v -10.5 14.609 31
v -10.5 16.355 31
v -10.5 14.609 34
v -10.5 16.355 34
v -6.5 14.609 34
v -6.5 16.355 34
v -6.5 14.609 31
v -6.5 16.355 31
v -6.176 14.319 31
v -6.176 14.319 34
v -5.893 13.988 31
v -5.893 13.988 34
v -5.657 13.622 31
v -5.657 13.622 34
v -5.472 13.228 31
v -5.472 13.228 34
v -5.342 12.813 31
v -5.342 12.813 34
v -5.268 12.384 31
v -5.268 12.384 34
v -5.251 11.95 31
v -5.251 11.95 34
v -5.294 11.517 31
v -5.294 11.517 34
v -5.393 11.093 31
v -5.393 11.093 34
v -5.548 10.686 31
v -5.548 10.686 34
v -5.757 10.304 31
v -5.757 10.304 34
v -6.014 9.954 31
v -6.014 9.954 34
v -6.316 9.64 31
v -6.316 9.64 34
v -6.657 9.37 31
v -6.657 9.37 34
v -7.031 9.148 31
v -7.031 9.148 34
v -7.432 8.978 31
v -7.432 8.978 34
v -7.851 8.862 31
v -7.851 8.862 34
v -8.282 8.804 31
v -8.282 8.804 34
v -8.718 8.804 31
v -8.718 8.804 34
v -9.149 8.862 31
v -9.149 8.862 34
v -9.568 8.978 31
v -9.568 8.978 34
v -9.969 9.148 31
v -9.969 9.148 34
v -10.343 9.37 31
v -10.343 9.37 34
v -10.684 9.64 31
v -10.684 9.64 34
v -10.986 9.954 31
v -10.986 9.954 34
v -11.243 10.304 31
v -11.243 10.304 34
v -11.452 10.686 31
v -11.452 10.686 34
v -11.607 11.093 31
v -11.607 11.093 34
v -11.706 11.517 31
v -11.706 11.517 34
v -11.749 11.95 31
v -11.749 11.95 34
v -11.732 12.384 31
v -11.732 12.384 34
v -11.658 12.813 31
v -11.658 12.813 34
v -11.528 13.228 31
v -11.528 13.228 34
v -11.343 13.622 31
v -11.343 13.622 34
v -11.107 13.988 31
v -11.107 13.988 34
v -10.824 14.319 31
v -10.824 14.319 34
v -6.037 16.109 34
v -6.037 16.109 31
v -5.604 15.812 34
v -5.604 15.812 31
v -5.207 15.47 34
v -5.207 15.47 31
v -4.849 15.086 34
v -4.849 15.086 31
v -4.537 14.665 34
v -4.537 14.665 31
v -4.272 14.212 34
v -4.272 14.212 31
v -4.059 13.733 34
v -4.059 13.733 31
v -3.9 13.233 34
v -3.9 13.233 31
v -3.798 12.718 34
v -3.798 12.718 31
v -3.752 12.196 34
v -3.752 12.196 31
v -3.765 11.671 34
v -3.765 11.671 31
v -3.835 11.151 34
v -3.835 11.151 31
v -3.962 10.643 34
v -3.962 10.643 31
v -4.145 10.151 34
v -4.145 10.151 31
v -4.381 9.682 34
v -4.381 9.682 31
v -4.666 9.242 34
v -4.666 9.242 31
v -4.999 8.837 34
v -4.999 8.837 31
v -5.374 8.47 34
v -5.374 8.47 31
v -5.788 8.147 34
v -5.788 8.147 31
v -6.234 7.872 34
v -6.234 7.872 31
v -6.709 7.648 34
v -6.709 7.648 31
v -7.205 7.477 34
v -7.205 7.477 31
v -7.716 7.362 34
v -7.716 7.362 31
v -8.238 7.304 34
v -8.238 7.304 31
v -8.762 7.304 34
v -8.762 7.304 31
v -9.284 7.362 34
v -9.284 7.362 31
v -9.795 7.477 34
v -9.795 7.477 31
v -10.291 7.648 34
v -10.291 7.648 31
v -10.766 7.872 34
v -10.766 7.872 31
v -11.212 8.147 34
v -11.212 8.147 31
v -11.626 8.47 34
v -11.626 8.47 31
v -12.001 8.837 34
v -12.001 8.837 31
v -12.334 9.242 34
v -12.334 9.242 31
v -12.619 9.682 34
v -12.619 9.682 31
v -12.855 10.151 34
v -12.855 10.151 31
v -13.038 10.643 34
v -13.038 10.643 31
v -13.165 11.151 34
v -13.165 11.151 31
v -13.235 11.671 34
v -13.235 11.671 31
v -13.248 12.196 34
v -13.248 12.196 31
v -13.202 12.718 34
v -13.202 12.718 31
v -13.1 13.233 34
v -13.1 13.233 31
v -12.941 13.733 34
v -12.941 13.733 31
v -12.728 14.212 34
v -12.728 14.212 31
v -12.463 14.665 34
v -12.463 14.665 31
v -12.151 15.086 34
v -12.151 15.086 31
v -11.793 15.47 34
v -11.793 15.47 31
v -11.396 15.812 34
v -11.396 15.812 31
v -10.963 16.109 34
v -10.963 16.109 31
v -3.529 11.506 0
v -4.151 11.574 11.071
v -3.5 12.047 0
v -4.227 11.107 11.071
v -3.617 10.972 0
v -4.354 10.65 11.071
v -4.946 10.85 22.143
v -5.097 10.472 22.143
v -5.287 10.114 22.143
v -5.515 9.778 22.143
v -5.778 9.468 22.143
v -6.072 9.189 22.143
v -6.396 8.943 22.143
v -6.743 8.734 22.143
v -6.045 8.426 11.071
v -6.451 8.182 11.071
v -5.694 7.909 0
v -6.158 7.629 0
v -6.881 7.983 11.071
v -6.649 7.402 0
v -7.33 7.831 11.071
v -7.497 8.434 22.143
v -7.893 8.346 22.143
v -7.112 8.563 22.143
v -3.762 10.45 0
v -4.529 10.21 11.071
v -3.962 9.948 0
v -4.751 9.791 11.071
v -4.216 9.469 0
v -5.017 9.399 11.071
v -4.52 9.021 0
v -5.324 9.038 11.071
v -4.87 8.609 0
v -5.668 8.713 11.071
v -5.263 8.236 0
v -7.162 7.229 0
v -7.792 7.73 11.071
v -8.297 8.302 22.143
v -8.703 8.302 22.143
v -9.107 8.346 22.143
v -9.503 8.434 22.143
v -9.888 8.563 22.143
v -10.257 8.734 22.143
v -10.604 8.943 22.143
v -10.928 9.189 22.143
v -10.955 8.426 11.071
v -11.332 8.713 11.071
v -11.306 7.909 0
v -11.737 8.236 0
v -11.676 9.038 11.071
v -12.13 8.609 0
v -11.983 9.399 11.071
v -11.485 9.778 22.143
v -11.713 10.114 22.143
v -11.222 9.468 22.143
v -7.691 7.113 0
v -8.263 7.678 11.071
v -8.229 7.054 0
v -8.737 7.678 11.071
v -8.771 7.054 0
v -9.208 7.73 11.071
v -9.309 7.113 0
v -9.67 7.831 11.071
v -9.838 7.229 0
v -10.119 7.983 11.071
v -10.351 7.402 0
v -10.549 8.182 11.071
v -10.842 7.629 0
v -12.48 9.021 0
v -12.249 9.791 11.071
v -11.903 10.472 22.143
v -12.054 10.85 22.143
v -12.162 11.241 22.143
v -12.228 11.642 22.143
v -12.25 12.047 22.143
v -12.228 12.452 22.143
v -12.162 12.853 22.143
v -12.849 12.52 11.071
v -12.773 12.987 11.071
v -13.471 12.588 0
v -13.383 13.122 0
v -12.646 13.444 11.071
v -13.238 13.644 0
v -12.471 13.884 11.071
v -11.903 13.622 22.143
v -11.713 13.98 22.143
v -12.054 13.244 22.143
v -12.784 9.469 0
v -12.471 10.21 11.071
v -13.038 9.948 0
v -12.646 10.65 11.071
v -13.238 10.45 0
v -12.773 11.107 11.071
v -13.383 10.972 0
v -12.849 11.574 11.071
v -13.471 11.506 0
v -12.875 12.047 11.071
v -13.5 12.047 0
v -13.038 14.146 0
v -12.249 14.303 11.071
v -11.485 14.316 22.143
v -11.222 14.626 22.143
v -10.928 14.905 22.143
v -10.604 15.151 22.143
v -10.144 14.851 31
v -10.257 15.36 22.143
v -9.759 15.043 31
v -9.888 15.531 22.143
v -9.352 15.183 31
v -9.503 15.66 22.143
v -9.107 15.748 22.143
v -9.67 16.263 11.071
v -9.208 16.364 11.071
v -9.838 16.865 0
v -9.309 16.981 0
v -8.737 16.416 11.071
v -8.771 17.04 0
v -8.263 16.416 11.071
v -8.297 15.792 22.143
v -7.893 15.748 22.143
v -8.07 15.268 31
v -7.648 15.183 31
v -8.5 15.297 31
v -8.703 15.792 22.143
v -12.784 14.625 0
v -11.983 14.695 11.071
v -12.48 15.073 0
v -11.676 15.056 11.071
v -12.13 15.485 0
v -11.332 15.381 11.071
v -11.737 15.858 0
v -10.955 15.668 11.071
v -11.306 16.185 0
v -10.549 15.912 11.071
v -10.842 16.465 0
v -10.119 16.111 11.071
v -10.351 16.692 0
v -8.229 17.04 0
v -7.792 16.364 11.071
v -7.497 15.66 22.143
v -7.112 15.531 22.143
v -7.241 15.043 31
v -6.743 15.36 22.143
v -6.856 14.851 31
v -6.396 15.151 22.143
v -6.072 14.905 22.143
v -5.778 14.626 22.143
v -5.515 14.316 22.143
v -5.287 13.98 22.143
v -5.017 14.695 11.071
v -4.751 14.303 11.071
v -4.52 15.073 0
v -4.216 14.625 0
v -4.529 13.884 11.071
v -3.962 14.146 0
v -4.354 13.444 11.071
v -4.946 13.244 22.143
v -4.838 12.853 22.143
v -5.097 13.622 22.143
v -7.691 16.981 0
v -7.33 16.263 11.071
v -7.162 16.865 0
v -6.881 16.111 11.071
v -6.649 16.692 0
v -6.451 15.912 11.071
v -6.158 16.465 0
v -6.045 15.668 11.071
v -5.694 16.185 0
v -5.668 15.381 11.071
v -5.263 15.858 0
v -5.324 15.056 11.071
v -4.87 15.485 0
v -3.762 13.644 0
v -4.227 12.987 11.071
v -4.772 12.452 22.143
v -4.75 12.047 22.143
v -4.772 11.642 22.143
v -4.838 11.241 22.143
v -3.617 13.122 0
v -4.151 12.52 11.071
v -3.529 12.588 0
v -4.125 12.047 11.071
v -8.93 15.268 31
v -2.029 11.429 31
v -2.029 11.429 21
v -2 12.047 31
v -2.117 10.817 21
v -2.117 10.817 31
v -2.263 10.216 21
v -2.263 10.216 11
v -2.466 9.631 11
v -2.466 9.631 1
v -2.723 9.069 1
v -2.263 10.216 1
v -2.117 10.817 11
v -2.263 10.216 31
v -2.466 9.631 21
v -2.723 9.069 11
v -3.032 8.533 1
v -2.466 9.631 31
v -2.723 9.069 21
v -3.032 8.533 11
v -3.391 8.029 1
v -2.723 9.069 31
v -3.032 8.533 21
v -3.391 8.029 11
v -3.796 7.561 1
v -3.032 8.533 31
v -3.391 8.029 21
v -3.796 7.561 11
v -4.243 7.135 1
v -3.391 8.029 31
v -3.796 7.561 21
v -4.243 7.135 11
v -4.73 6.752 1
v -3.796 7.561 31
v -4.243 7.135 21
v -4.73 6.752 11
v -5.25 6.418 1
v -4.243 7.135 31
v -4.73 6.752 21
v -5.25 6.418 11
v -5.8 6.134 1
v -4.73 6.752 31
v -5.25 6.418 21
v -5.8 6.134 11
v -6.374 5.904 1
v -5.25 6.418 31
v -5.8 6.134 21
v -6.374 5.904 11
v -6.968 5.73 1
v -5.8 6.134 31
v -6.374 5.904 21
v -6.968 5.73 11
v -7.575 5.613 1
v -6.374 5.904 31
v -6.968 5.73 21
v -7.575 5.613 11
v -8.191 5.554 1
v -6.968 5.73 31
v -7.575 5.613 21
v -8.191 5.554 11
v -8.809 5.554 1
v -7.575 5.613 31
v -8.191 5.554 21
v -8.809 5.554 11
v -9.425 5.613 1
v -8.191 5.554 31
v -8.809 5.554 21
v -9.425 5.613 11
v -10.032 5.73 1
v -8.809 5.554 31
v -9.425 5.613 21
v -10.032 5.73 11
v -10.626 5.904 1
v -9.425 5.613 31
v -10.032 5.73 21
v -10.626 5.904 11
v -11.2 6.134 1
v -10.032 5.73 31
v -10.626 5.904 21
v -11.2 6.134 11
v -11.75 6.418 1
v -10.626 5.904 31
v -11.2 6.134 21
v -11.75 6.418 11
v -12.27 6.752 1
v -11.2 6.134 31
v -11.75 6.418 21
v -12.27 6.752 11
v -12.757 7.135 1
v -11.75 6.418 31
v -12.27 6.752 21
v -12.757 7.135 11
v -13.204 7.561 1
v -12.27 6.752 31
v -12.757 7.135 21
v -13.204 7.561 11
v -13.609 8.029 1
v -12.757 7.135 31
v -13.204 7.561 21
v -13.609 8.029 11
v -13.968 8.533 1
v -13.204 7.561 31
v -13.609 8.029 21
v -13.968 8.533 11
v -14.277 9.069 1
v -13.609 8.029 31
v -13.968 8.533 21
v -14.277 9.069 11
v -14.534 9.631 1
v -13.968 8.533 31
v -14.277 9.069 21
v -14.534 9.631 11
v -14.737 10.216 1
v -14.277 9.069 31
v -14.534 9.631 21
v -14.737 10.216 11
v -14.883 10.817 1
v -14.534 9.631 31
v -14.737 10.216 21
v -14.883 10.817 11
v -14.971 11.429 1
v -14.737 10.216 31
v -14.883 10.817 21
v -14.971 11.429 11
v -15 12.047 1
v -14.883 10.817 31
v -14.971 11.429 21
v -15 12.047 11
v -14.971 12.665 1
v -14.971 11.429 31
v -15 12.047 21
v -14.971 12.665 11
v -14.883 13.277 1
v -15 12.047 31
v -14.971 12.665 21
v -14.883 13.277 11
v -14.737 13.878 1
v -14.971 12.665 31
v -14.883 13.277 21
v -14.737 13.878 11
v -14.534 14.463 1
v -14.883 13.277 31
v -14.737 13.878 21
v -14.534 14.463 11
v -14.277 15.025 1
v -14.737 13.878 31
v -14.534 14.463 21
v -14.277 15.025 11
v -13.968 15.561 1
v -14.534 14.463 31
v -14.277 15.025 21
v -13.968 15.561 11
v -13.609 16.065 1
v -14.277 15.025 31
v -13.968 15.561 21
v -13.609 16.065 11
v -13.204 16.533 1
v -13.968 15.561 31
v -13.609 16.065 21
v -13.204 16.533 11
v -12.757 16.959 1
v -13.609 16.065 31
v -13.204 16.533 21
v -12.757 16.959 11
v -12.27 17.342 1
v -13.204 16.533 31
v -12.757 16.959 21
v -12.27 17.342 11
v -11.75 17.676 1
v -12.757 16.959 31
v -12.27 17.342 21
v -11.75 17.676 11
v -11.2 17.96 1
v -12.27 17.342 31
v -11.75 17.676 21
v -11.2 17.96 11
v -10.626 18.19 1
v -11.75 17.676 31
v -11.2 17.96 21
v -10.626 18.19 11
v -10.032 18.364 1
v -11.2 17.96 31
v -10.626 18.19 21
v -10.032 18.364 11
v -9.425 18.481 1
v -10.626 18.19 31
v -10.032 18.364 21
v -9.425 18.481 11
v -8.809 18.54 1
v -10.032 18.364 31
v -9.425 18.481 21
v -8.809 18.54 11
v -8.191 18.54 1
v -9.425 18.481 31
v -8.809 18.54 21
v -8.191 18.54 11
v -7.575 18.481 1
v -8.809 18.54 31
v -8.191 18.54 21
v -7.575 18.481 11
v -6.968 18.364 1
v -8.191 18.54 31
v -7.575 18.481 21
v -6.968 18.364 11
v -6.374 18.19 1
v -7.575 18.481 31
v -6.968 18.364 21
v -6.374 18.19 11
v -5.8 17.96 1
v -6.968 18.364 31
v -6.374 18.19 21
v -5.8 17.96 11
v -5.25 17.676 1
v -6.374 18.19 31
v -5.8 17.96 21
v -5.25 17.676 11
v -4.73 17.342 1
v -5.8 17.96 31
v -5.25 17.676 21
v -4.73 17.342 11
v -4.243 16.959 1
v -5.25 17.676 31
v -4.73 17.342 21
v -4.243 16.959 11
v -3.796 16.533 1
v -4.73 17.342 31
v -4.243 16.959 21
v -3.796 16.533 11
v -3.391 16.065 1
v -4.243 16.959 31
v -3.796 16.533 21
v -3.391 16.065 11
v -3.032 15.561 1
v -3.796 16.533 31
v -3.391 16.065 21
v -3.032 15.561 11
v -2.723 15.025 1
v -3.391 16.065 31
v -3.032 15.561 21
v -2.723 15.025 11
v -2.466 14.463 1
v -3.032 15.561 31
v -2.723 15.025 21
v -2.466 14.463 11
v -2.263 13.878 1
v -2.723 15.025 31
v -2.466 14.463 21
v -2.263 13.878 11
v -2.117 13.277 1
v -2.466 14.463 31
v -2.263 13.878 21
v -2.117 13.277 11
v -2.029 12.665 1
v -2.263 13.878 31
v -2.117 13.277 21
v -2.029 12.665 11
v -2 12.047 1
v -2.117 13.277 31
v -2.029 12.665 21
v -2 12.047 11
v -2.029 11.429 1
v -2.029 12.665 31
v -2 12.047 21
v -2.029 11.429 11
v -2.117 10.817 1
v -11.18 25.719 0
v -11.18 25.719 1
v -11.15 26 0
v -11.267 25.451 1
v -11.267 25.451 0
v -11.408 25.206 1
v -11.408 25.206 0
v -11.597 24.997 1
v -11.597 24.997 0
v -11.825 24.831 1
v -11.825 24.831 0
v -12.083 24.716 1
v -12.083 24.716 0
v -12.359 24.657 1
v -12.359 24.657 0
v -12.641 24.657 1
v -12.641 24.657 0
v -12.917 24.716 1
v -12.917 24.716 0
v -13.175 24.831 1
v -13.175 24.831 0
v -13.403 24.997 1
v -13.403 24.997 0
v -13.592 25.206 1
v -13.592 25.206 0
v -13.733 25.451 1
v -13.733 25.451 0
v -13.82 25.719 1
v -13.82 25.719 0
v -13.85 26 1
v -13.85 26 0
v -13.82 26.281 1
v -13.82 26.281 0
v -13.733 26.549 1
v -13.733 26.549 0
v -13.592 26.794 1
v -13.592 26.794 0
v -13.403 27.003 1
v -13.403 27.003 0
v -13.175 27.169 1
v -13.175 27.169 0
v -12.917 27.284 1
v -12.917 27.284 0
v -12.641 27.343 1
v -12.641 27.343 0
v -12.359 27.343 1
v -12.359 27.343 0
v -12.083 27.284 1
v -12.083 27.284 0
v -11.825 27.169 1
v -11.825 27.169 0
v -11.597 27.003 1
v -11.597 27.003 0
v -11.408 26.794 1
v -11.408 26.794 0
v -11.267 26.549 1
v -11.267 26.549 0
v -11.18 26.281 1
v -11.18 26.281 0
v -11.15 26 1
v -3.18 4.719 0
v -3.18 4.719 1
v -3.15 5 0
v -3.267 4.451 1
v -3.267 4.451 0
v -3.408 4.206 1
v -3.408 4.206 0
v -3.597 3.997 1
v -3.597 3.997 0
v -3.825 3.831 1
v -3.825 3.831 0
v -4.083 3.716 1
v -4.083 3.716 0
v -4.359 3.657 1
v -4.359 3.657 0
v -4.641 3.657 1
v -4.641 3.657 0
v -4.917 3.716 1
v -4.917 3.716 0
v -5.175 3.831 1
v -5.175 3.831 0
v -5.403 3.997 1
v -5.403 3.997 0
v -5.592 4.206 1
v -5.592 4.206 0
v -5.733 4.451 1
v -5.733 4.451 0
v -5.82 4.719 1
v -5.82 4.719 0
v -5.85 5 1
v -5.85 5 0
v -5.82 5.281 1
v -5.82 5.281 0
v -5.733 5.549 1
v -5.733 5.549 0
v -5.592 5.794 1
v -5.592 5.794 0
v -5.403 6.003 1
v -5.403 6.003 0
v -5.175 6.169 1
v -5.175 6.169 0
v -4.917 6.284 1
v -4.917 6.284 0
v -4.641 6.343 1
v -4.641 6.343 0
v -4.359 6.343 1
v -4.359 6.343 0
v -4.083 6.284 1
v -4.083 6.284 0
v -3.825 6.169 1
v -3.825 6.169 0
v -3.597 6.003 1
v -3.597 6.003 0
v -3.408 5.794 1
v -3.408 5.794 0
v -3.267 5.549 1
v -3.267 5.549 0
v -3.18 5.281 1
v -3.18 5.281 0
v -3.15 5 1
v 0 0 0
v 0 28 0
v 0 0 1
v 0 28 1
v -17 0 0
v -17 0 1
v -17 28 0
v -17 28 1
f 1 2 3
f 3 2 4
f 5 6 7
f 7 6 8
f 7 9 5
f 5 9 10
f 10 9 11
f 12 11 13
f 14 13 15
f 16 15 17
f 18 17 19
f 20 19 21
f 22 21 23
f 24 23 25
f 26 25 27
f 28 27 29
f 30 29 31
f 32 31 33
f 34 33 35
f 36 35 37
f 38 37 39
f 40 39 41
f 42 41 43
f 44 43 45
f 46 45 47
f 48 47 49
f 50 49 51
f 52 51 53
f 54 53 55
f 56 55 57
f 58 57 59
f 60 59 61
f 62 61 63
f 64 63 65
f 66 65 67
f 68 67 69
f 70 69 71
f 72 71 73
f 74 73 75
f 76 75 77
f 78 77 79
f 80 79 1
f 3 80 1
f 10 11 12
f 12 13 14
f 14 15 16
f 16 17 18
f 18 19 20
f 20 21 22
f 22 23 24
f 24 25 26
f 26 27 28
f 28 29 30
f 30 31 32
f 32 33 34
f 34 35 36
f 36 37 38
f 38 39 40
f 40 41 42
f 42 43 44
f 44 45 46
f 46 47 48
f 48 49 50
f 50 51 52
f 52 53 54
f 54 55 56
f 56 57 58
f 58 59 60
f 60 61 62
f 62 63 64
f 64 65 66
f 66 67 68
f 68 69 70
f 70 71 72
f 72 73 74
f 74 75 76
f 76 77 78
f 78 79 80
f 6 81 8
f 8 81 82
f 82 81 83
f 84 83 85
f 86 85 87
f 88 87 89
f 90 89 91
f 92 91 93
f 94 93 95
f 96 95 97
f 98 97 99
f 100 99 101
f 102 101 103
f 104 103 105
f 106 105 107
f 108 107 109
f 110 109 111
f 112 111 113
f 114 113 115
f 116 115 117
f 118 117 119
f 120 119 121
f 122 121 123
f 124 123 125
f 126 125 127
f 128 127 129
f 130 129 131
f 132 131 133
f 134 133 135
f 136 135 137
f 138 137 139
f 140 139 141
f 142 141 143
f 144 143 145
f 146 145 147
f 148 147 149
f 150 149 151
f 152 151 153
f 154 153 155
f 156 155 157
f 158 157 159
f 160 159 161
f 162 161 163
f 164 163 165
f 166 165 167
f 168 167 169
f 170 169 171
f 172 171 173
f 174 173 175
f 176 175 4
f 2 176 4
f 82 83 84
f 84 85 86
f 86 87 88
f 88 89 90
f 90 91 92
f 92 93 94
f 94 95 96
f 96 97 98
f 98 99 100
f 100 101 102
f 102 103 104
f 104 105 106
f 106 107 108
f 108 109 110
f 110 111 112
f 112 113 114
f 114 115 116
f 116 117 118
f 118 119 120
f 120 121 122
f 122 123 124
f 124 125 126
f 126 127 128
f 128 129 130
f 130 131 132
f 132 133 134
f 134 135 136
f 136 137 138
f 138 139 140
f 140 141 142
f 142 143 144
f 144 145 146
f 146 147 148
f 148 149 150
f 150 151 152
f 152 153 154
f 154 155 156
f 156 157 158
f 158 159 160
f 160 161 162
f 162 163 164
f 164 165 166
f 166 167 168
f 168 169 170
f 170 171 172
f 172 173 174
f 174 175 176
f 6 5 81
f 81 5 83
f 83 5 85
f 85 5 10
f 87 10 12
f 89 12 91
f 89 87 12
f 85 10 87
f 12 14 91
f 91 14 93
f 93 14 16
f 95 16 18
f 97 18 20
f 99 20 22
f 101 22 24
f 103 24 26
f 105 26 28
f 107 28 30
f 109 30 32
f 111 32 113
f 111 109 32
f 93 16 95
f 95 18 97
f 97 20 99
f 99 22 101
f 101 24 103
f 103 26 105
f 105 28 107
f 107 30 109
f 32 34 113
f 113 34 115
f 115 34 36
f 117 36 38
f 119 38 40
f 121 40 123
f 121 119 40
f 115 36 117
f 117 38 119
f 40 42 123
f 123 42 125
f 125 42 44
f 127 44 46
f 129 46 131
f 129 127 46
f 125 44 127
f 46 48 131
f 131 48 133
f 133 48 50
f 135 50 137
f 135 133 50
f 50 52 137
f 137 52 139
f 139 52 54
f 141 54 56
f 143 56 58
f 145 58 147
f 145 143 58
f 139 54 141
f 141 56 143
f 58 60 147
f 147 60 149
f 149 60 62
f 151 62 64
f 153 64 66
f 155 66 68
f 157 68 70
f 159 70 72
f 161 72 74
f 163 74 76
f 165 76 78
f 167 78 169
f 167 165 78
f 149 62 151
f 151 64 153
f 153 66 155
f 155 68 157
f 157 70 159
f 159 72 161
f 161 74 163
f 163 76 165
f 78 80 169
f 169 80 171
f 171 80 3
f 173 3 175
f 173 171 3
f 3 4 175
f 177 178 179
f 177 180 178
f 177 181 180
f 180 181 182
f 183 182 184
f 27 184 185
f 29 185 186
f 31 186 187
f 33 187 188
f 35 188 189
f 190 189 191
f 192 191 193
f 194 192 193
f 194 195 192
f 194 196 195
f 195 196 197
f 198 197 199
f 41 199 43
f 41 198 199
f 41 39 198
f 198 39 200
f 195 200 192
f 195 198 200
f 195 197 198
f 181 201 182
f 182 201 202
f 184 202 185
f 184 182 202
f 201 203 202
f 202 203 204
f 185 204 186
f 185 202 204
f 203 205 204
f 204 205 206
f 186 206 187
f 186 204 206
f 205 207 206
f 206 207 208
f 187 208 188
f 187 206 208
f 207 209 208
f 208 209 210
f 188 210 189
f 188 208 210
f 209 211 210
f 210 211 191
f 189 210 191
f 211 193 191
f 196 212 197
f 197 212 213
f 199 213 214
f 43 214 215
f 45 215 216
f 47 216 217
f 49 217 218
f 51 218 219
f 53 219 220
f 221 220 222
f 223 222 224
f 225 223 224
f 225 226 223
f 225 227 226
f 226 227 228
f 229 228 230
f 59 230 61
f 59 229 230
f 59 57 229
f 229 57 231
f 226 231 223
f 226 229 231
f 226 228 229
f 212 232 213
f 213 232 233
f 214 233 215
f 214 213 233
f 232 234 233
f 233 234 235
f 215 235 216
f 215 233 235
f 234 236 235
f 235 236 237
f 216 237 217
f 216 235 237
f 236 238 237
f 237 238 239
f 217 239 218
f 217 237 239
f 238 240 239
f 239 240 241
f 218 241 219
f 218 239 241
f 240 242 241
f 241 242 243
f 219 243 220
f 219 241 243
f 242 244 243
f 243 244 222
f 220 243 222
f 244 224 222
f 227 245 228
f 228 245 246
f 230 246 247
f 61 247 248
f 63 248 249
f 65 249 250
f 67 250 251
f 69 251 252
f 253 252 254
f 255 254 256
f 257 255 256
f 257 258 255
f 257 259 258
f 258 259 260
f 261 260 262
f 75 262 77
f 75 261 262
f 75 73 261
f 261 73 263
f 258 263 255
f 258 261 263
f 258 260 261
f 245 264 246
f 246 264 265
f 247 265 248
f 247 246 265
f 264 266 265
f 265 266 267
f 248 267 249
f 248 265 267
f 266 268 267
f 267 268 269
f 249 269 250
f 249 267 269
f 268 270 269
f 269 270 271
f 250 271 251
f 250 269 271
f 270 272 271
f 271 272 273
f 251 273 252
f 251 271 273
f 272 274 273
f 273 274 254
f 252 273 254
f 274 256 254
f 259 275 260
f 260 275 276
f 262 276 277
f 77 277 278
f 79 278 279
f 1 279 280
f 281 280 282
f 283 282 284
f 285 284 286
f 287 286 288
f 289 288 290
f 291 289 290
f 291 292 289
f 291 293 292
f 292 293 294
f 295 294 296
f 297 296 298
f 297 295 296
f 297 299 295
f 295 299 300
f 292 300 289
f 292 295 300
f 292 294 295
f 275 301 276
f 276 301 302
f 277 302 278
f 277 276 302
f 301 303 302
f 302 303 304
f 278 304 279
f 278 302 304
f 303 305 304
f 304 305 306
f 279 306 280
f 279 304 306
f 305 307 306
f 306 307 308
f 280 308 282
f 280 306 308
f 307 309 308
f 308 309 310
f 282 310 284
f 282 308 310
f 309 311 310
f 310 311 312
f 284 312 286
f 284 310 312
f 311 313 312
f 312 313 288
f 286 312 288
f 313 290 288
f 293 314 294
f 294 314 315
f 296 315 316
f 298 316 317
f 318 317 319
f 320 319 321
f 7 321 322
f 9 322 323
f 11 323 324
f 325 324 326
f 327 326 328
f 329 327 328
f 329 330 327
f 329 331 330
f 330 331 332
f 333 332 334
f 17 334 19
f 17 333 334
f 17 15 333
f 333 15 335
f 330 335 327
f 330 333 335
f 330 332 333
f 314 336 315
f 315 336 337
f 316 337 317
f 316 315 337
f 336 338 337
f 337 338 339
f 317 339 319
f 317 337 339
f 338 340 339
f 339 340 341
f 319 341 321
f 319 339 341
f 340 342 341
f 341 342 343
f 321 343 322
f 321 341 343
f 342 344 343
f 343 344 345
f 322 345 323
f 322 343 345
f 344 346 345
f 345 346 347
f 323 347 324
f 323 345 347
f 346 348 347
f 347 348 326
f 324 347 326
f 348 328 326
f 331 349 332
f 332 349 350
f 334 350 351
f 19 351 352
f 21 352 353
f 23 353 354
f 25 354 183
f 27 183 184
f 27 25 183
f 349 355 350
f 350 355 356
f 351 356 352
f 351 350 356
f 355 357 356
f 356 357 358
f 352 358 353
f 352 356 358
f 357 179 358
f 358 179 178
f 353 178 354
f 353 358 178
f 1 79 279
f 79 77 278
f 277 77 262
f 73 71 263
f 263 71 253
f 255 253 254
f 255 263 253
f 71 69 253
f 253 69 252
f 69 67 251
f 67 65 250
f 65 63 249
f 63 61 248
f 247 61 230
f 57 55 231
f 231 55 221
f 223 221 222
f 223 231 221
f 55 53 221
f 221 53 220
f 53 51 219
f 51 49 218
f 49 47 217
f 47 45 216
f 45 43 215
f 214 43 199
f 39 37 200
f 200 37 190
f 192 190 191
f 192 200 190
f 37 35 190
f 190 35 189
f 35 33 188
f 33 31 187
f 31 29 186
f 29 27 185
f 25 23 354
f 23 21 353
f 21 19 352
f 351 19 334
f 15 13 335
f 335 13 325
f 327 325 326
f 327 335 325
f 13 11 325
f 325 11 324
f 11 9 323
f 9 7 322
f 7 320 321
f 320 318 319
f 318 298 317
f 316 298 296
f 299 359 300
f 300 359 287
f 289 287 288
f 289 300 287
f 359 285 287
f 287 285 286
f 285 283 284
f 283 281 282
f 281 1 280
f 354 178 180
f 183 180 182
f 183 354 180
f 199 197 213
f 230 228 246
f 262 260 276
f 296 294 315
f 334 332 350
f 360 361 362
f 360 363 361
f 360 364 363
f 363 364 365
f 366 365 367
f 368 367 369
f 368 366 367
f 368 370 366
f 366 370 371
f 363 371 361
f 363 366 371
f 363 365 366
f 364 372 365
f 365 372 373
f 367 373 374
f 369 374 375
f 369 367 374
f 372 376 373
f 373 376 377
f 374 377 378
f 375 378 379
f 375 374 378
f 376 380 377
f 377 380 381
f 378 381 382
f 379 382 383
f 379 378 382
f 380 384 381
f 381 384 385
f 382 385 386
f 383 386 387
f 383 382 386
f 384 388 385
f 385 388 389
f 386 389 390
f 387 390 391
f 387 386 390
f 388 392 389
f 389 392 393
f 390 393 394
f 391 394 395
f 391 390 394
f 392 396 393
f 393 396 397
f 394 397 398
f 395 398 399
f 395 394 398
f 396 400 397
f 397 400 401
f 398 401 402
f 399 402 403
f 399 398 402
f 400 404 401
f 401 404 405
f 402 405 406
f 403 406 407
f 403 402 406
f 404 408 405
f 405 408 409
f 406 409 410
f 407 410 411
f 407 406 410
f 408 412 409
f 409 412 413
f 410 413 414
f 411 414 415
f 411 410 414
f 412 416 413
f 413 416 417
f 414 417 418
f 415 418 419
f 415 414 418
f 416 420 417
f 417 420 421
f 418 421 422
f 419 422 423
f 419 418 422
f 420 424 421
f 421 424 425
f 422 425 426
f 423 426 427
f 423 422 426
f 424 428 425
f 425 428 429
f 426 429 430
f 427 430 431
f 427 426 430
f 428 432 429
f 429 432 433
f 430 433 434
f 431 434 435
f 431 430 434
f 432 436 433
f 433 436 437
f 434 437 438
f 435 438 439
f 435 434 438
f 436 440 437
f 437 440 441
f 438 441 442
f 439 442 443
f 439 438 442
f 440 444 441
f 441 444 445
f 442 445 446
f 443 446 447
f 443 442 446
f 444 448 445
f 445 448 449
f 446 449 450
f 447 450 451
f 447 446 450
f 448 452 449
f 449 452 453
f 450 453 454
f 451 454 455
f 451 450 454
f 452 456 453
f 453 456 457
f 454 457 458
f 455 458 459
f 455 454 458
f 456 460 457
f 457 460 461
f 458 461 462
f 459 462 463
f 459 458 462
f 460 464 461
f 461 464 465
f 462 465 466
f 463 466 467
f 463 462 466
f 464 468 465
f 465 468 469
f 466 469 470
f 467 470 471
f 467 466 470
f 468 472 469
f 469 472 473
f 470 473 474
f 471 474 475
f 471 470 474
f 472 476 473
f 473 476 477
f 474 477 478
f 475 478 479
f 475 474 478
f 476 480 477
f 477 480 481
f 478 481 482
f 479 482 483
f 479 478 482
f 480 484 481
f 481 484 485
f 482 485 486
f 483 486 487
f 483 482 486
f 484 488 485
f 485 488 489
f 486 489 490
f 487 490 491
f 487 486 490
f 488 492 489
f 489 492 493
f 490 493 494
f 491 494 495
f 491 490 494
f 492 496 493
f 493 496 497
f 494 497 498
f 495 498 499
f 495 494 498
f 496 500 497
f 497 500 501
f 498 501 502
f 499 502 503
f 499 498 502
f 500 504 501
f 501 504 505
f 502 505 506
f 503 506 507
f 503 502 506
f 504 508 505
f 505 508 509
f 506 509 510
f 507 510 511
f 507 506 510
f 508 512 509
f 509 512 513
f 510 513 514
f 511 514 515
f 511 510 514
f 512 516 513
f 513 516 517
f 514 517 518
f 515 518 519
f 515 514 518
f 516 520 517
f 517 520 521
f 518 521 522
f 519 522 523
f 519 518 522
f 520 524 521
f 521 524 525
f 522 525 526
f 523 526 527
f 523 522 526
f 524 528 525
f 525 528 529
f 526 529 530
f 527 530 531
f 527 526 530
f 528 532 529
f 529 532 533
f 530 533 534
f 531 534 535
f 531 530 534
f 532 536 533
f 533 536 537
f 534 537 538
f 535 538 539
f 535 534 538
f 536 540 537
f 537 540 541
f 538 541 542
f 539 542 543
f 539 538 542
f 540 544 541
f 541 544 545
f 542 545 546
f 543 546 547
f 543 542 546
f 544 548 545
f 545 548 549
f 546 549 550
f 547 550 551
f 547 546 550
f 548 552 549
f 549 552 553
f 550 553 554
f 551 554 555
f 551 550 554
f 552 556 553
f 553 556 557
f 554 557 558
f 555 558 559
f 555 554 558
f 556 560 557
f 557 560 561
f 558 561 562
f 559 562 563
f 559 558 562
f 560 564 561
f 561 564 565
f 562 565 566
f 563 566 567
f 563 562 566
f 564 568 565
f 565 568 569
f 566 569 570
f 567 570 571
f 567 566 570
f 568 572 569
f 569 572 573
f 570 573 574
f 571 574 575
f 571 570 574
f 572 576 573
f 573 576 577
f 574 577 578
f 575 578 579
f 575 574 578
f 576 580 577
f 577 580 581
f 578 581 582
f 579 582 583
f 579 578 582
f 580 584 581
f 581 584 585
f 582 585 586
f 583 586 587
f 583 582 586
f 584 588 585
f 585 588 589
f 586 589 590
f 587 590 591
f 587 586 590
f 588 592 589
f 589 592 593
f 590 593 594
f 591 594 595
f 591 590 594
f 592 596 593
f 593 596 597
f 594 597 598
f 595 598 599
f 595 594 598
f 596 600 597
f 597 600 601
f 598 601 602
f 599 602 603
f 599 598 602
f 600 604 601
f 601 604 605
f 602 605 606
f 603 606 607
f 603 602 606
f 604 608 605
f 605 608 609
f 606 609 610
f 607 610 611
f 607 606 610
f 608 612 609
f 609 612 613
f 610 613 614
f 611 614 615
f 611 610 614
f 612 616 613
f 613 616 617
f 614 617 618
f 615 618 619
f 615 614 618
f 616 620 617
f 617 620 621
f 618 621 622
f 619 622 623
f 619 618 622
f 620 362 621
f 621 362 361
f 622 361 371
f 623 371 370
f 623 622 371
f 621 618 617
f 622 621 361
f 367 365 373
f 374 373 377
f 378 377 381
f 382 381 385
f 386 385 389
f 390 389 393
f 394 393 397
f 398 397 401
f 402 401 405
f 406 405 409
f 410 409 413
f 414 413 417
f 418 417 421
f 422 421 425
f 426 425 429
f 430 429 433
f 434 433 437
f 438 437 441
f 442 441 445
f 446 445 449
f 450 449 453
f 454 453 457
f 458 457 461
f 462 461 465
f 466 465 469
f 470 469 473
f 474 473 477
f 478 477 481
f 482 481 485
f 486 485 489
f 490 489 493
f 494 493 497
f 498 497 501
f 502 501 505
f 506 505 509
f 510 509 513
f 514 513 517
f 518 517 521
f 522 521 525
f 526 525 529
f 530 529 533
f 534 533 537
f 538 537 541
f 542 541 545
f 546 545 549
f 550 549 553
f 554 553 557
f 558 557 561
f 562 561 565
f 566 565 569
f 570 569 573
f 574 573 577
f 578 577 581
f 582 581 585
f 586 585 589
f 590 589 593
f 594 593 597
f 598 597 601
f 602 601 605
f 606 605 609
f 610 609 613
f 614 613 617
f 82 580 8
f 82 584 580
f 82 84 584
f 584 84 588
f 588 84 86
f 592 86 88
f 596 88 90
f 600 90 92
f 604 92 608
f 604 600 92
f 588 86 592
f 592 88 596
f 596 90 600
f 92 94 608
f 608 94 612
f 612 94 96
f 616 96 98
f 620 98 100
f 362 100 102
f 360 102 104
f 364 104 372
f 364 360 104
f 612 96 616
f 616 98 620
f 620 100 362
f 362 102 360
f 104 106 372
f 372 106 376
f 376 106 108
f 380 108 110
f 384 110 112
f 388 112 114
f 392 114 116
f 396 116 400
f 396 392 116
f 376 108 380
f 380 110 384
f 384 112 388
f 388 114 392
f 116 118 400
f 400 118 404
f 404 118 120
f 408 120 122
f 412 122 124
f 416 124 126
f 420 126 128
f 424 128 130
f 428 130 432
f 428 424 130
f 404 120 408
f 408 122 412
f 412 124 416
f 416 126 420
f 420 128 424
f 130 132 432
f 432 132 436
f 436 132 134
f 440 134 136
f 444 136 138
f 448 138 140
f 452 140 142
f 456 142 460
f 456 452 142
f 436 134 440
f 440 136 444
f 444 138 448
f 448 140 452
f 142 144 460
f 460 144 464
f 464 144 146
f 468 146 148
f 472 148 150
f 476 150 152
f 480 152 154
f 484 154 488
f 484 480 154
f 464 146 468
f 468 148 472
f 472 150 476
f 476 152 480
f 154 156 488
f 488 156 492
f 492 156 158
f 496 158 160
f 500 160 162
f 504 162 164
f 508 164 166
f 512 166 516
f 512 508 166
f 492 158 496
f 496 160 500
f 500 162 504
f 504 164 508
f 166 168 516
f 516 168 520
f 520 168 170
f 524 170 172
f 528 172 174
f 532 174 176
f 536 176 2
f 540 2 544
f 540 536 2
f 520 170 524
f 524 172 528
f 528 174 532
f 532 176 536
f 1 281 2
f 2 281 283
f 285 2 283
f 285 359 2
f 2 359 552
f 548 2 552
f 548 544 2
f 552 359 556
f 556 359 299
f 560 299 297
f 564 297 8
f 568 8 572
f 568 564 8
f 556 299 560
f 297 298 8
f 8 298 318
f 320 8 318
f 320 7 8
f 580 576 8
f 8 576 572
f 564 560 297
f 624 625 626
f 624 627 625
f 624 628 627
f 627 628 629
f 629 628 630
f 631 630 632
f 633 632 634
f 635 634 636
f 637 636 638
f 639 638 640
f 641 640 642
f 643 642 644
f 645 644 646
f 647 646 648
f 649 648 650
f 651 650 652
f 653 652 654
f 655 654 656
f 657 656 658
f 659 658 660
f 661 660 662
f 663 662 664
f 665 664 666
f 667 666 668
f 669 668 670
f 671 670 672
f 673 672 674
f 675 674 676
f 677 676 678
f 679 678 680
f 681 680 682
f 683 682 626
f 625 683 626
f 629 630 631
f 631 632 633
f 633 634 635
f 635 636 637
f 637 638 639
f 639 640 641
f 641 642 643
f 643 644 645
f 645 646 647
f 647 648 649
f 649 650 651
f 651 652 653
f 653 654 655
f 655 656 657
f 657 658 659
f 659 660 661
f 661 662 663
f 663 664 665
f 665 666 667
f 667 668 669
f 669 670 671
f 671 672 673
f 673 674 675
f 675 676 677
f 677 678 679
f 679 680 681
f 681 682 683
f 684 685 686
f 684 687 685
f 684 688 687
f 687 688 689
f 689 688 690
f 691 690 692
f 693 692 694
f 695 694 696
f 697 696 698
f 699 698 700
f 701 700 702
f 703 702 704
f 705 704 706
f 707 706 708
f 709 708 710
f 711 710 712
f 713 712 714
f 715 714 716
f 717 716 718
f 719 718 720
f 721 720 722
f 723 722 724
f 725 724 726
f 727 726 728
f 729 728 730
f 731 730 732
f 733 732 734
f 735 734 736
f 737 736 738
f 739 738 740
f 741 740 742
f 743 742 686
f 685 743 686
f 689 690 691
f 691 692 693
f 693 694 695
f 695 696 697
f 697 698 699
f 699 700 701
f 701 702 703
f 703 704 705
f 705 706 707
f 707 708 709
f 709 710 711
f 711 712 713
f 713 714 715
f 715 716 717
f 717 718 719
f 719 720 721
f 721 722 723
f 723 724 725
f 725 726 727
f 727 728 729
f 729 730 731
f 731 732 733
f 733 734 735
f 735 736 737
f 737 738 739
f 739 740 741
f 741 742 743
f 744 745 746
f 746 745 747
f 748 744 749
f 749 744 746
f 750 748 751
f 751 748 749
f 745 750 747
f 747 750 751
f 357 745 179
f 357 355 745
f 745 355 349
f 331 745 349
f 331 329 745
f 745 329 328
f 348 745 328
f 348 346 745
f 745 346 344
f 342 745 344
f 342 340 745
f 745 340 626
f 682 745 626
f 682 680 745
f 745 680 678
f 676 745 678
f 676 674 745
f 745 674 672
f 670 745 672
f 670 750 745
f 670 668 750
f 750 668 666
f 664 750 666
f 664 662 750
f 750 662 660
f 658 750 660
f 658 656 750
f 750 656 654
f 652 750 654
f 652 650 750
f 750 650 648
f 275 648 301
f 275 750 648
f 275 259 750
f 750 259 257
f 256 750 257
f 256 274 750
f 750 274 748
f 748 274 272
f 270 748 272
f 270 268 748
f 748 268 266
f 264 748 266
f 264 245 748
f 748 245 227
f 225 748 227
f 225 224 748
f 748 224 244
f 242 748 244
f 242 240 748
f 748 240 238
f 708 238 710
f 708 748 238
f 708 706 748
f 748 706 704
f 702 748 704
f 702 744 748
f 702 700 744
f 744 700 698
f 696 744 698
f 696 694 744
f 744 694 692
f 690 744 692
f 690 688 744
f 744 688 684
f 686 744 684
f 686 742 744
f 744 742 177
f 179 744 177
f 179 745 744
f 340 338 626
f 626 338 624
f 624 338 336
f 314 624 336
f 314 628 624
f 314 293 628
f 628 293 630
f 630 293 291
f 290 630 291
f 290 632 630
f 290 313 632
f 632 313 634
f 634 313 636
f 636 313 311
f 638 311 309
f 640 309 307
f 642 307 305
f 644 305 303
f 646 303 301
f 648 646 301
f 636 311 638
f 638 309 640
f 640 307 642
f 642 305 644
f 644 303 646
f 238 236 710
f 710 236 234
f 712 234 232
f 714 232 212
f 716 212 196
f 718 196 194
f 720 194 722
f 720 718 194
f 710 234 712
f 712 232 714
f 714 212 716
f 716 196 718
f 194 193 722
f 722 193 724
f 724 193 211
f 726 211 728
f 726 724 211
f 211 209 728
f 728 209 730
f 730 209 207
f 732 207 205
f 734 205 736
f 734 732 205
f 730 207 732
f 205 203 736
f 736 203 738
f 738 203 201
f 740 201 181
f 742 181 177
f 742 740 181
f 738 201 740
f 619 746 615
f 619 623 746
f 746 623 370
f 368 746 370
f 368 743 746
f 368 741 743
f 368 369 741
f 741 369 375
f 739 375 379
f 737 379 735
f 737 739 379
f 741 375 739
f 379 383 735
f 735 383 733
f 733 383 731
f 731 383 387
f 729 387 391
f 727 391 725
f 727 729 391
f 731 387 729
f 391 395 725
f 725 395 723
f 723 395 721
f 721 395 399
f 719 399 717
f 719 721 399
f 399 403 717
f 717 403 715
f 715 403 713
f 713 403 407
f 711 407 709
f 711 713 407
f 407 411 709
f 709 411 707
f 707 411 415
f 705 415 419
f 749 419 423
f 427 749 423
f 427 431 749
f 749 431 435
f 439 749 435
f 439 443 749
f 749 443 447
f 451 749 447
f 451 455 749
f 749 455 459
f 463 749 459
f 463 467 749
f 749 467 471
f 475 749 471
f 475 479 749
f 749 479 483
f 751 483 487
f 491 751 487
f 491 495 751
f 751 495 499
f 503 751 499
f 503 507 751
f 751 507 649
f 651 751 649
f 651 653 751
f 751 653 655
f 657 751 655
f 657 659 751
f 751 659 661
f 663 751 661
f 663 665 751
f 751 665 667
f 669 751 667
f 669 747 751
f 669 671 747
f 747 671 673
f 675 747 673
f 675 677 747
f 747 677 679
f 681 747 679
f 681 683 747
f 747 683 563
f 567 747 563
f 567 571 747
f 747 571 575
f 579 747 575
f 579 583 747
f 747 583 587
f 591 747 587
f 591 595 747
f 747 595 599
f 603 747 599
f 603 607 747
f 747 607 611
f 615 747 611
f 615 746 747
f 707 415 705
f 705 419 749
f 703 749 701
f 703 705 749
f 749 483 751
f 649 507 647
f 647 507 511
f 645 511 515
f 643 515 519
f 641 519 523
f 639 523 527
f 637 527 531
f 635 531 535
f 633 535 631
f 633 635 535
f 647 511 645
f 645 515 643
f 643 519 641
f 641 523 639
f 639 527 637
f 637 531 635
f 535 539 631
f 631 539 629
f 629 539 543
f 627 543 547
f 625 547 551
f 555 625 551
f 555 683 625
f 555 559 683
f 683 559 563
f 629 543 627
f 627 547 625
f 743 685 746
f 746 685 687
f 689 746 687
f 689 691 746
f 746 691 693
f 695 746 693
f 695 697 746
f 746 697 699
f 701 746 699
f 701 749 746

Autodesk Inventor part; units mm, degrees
ref_plane "YZ Plane" through (0, 0, 0) normal (1, 0, 0) x (0, 1, 0)
ref_plane "XZ Plane" through (0, 0, 0) normal (0, 1, 0) x (-1, 0, 0)
ref_plane "XY Plane" through (0, 0, 0) normal (0, 0, 1) x (1, 0, 0)
sketch "Sketch1" plane through (0, 0, 0) normal (0, 0, 1) x (1, 0, 0)
  line L0 (-17, 28) -> (0, 28)
  line L1 (0, 28) -> (0, 0)
  line L2 (0, 0) -> (-17, 0)
  line L3 (-17, 0) -> (-17, 28)
  dimension "d0" = 17
  dimension "d1" = 28
extrude "Extrusion1" add sketch "Sketch1" along normal blind 1
sketch "Sketch2" plane through (0, 0, 1) normal (0, 0, 1) x (1, 0, 0)
  line L0 (-17, 28) -> (-17, 0) projected
  line L1 (0, 28) -> (-17, 28) projected
  line L2 (0, 0) -> (0, 28) projected
  line L3 (-17, 0) -> (0, 0) projected
  circle A0 centre (-12.5, 26) radius 1.35
  circle A1 centre (-4.5, 5) radius 1.35
  dimension "d4" = 2.7
  dimension "d5" = 2.7
  dimension "d6" = 4.5
  dimension "d7" = 4.5
  dimension "d8" = 2
  dimension "d9" = 5
extrude "Extrusion2" cut sketch "Sketch2" against normal through all contours A0 | A1
sketch "Sketch3" plane through (0, 0, 1) normal (0, 0, 1) x (1, 0, 0)
  circle A0 centre (-12.5, 26) radius 1.35 projected
  circle A1 centre (-4.5, 5) radius 1.35 projected
  line L0 (0, 28) -> (-17, 28) projected
  line L1 (-17, 28) -> (-17, 0) projected
  line L2 (-17, 0) -> (0, 0) projected
  line L3 (0, 0) -> (0, 28) projected
  circle A2 centre (-8.5, 12.047) radius 6.5
  dimension "d12" = 13
  dimension "d13" = 12.047
extrude "Extrusion3" add sketch "Sketch3" along normal blind 30 contours A2
sketch "Sketch4" plane through (-8.5, 12.047, 31) normal (0, 0, 1) x (1, 0, 0)
  circle A0 centre (0, 0) radius 6.5 projected
  circle A1 centre (0, 0) radius 3.25
  point P0 (8.5, -12.047)
  dimension "d16" = 6.5
sketch "Sketch5" plane through (0, 0, 0) normal (0, 0, -1) x (-1, 0, 0)
  circle A0 centre (8.5, 12.047) radius 6.5 projected
  circle A1 centre (8.5, 12.047) radius 5
  point P0 (0, 0)
  dimension "d17" = 10
loft "Loft1" cut profiles "Sketch5", "Sketch4" contours A1 / A1
sketch "Sketch6" plane through (-8.5, 12.047, 31) normal (0, 0, 1) x (1, 0, 0)
  circle A0 centre (0, 0) radius 3.25 projected
  circle A1 centre (0, 0) radius 4.75
  point P0 (8.5, -12.047)
  dimension "d26" = 9.5
extrude "Extrusion6" add sketch "Sketch6" along normal blind 3
sketch "Sketch7" plane through (-8.5, 12.047, 34) normal (0, 0, 1) x (1, 0, 0)
  circle A0 centre (0, 0) radius 3.25 projected
  circle A1 centre (0, 0) radius 4.75 projected
  line L0 (2, 0) -> (-2, 0)
  line L1 (-2, 0) -> (-2, 6)
  line L2 (-2, 6) -> (2, 6)
  line L3 (2, 6) -> (2, 0)
  point P0 (8.5, -12.047)
  dimension "d29" = 4
  dimension "d30" = 2
extrude "Extrusion7" cut sketch "Sketch7" against normal up to surface (3 mm away) contours L3 L0 L1 A0 | A0 L1 A1 L3 | A1 L1 L2 L3 picked at (0, 1.0833) picked at (0.3414, 4.2128)
properties part number "TORRE0.2"
